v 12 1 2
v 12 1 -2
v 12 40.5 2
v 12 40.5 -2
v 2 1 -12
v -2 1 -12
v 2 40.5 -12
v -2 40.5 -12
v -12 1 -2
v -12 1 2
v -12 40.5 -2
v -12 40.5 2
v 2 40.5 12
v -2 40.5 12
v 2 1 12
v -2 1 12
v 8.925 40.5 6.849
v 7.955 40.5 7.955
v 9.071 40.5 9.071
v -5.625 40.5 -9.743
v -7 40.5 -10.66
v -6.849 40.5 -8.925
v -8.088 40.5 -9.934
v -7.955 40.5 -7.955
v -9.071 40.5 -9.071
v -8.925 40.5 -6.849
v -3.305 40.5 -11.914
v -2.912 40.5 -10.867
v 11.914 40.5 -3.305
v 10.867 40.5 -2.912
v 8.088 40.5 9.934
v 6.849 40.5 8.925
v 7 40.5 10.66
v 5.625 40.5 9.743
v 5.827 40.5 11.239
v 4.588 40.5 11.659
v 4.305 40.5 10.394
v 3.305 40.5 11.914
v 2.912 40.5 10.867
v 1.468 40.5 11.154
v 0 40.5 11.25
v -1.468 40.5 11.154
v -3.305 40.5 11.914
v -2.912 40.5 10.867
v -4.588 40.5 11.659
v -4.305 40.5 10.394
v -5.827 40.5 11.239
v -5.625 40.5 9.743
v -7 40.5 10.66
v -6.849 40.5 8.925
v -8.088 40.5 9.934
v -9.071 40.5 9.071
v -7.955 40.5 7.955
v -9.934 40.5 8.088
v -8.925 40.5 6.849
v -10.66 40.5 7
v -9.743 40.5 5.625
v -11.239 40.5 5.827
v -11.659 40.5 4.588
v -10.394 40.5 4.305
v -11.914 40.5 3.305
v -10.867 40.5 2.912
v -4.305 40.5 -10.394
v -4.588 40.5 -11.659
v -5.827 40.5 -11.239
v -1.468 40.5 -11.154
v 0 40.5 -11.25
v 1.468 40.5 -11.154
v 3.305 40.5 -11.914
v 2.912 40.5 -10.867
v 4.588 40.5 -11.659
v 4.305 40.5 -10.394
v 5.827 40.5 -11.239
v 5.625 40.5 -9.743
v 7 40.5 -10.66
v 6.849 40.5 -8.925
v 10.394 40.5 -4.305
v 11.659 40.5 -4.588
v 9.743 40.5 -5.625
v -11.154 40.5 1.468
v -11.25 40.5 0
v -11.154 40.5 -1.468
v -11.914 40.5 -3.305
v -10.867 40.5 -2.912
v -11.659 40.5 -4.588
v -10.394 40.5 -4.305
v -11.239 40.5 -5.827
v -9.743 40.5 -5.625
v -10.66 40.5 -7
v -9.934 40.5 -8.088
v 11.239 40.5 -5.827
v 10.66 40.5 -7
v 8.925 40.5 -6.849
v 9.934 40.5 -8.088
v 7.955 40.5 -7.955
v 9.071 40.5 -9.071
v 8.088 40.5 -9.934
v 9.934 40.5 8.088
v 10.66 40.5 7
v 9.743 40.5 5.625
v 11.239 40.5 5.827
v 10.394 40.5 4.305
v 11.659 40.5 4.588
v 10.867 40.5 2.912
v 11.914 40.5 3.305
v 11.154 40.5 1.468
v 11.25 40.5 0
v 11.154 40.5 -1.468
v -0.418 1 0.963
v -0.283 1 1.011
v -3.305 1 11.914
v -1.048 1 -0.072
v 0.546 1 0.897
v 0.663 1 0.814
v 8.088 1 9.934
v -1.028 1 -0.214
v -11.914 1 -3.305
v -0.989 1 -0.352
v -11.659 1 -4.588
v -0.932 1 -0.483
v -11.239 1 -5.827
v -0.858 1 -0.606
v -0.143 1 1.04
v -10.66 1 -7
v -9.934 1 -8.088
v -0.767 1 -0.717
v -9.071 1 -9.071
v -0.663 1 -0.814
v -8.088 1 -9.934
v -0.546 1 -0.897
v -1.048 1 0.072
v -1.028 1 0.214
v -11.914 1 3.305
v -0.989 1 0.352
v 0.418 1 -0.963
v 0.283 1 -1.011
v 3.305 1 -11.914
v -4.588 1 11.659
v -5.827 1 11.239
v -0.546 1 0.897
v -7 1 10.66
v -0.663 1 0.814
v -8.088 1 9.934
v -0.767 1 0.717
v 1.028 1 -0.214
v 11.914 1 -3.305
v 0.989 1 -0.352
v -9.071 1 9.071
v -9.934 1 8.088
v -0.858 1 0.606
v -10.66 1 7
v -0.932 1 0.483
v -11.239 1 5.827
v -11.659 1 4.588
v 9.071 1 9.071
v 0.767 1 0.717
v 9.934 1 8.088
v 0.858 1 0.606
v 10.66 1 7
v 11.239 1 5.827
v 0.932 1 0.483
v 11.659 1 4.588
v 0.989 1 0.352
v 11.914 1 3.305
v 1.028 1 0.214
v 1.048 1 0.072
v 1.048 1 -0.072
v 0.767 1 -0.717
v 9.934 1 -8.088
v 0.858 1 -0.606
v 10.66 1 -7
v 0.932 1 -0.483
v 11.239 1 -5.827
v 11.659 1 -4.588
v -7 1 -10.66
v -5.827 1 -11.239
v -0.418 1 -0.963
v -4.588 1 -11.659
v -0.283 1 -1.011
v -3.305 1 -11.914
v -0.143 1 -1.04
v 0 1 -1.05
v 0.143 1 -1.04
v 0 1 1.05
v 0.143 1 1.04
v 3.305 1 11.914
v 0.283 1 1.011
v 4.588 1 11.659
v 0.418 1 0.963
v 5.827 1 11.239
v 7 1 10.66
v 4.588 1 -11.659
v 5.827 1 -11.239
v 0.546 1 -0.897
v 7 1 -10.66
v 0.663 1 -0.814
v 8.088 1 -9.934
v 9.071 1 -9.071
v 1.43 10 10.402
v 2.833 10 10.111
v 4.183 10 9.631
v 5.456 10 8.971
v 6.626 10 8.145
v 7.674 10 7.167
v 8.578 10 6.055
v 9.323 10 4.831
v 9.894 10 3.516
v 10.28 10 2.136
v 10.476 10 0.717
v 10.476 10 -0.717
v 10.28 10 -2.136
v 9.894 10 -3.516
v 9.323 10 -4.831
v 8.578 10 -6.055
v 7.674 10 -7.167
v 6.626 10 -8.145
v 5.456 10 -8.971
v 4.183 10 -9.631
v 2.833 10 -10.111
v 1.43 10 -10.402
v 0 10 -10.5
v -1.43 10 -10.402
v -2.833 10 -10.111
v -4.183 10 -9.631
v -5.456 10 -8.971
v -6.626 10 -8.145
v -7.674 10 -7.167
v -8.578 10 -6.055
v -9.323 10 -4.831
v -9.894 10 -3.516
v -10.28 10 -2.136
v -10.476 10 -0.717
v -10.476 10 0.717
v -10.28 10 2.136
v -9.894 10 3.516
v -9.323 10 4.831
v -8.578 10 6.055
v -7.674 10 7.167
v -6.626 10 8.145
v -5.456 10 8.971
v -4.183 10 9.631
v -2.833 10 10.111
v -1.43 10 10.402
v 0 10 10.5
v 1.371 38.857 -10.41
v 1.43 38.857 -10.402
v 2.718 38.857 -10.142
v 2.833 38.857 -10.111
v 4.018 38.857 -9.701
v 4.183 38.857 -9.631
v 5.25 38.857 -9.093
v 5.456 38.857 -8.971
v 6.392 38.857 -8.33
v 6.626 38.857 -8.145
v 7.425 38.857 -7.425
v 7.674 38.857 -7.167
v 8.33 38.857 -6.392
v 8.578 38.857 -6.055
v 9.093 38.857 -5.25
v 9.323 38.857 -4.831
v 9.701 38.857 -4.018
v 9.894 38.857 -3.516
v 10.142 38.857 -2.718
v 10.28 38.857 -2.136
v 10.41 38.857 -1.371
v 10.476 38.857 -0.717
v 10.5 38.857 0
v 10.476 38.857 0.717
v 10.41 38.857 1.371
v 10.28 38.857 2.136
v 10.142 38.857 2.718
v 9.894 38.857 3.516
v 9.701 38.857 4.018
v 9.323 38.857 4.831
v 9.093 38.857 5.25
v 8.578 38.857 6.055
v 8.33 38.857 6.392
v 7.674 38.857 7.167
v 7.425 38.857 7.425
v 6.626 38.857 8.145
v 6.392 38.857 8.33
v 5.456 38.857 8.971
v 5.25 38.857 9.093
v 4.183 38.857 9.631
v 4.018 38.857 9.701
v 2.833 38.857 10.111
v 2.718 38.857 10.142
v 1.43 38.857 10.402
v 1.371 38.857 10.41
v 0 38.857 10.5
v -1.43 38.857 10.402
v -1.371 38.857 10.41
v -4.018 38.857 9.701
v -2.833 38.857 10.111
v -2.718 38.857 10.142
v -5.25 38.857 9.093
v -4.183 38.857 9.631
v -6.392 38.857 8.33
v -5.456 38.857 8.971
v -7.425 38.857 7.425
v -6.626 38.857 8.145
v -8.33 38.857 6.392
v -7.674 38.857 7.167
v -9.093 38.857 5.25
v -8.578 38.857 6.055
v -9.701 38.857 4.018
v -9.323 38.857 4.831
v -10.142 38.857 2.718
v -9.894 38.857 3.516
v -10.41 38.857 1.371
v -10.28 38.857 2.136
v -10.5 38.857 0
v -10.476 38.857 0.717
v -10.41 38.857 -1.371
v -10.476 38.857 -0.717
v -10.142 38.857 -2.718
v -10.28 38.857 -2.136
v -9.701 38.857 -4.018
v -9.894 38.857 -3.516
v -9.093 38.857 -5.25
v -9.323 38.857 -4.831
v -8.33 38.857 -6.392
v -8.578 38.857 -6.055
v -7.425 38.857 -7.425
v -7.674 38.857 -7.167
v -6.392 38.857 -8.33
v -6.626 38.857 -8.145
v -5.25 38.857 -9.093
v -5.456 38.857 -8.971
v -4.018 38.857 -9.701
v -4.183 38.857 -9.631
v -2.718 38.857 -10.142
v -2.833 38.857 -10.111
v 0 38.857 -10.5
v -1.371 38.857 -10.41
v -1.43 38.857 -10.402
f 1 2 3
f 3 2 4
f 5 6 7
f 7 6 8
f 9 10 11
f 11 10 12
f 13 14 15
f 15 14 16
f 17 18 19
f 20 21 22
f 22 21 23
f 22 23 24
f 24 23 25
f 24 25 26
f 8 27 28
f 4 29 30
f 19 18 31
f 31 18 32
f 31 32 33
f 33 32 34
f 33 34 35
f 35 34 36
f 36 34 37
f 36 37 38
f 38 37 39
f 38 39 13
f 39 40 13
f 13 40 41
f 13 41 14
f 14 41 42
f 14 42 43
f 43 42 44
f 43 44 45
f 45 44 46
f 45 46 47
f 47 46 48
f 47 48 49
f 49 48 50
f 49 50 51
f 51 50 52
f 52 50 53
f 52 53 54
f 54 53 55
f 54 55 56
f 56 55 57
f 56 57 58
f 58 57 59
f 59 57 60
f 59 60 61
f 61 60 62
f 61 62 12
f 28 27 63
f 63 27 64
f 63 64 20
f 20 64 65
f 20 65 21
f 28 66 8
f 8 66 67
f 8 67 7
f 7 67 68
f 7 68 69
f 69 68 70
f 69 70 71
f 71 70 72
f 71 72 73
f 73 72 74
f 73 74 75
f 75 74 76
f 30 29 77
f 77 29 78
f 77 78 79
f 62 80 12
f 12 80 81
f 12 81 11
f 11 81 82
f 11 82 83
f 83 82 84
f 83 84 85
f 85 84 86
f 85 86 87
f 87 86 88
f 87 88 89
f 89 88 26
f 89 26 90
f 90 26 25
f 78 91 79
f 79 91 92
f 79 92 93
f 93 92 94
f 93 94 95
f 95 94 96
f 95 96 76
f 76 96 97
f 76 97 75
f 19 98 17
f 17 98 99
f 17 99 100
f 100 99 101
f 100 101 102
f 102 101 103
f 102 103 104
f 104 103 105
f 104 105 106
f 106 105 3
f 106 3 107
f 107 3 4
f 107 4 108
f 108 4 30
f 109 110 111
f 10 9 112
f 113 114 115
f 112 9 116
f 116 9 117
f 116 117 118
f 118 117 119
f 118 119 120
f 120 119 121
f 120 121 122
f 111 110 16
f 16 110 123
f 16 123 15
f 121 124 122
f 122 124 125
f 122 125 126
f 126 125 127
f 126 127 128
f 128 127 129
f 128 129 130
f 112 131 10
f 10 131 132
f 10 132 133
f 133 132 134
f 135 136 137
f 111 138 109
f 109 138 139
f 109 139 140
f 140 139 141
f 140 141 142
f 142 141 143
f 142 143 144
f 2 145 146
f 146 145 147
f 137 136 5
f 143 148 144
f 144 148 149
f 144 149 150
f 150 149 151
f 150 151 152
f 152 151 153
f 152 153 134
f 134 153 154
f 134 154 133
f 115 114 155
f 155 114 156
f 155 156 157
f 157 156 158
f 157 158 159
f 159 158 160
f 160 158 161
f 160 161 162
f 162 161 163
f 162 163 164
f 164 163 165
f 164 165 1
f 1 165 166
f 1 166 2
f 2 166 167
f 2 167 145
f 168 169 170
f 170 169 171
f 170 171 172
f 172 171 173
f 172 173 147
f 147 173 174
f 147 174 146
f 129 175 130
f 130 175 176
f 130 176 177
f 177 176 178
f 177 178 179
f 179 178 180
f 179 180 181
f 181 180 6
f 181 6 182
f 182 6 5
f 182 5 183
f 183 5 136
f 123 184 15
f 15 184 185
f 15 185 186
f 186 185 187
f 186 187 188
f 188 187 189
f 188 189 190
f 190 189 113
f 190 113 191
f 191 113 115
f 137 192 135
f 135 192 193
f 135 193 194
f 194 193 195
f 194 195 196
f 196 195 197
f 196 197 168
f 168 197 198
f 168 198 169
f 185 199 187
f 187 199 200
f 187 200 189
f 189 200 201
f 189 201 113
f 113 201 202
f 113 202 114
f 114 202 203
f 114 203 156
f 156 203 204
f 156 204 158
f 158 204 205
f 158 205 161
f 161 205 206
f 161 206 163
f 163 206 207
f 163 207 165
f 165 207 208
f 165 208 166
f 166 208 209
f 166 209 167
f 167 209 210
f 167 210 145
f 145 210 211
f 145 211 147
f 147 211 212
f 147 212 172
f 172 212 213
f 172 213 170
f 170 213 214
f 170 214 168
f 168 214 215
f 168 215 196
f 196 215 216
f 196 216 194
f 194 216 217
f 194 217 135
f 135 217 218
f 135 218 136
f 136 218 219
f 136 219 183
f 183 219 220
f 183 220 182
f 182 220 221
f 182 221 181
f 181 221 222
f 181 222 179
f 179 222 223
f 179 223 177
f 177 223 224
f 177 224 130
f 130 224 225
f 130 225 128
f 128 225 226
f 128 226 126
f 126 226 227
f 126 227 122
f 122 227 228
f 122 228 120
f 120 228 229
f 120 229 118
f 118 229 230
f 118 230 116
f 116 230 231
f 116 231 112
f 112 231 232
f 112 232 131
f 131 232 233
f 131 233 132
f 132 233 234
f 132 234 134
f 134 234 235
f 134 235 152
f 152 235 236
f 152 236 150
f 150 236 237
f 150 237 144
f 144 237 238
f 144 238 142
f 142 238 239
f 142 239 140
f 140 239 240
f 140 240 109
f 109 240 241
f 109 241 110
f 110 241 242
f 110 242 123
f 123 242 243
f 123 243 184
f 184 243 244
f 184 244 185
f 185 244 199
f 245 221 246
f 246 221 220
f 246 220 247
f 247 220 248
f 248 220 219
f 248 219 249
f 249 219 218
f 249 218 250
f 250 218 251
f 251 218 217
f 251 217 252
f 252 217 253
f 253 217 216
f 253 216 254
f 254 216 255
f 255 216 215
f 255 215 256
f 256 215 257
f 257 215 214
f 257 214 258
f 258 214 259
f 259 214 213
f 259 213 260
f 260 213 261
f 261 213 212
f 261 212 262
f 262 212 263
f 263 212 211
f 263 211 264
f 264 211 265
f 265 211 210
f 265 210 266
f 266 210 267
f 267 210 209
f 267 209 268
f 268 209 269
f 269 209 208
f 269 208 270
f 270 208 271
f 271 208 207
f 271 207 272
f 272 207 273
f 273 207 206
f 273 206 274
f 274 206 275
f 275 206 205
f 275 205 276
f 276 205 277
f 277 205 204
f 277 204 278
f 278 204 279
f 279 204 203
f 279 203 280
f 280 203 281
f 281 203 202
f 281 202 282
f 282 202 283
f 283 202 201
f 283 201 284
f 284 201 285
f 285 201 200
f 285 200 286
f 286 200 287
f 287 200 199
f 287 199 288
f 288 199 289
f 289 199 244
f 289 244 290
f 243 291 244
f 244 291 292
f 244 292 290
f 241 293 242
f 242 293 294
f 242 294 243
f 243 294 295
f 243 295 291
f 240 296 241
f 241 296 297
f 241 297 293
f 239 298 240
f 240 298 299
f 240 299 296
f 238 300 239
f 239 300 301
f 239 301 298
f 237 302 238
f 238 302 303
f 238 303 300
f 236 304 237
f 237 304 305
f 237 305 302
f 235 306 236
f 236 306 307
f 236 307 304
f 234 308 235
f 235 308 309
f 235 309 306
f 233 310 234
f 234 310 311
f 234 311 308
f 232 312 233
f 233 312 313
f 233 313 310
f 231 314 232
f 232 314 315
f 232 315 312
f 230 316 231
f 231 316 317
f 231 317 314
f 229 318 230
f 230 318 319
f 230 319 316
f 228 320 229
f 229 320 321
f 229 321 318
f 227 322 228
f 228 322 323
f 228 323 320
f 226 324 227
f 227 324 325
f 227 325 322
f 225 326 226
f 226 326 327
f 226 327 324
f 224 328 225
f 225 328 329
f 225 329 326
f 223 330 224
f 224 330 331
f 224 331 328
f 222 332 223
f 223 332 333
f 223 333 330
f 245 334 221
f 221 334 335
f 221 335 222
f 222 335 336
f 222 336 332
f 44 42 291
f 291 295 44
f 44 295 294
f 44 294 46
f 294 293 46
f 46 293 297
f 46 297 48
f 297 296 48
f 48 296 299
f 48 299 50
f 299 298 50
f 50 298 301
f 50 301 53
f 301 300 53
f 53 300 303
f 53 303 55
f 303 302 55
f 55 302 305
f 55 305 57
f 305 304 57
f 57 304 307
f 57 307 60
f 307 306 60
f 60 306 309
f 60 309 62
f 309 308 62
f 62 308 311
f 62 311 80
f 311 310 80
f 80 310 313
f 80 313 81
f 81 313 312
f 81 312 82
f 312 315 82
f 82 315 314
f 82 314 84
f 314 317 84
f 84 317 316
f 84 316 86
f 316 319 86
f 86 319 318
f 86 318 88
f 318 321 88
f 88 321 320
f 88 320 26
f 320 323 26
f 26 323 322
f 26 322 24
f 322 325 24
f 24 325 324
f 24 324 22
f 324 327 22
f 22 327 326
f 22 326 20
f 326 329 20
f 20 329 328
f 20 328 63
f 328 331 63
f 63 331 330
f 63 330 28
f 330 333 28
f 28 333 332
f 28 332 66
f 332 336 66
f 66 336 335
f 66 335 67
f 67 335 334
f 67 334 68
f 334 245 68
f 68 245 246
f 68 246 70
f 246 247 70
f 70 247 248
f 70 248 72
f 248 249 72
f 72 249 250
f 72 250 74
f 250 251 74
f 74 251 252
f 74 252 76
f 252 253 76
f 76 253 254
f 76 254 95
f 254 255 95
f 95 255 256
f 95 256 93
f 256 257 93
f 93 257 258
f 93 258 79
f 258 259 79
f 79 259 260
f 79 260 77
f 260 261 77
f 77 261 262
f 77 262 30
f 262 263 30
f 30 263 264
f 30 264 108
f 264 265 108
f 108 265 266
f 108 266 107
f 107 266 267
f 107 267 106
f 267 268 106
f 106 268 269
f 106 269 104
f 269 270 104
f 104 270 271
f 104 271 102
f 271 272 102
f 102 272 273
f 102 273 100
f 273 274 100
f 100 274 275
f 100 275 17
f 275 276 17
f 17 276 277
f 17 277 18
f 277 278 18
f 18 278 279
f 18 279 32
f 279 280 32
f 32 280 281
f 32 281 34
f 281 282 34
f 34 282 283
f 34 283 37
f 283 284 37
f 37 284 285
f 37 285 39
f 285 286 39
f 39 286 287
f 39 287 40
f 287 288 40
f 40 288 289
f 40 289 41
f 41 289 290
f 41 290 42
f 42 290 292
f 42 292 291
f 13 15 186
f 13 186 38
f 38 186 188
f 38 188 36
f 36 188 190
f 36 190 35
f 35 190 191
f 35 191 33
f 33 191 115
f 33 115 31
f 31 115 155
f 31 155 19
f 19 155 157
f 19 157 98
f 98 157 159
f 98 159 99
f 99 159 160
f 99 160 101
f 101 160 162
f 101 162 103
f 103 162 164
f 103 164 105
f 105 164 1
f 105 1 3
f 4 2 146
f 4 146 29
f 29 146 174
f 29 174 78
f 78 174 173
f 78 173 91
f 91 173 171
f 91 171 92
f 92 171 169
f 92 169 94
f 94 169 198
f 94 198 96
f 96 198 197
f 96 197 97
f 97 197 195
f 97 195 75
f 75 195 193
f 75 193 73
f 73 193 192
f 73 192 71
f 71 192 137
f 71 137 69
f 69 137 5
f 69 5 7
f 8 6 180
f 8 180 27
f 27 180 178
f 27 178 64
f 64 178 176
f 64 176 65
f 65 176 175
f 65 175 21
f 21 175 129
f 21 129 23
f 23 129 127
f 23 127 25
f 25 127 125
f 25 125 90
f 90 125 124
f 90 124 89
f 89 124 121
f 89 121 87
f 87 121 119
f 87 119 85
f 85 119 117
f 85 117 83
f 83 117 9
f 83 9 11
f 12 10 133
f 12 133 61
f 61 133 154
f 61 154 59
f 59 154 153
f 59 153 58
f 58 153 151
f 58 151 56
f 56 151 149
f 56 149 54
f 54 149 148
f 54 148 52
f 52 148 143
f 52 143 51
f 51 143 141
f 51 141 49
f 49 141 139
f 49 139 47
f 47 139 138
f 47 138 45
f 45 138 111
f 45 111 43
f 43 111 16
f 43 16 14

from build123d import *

# Parameters (mm, degrees)
BOSS_EXTRUDE2_START = 1
SKETCH3_W           = 24
SKETCH3_H           = 24
BOSS_EXTRUDE2_DEPTH = 39.5
FILLET1_R           = 10


with BuildPart() as part:
    # Sketch1 → Revolve1 (revolve)
    with BuildSketch(Plane(origin=(0, 0, 0), x_dir=(0, 0, -1), z_dir=(1, 0, 0))):
        Polygon((0, 0), (10.5, 10), (10.5, 38.857142857), (11.25, 40.5), (11.25, 44.5), (0, 44.5), align=None)
    revolve(axis=Axis((0, 0, 0), (0, 1, 0)))


with BuildPart() as body_2:
    # Sketch3 → Boss-Extrude2 (new body)
    with BuildSketch(Plane(origin=(0, 0, 0), x_dir=(1, 0, 0), z_dir=(0, 1, 0)).offset(BOSS_EXTRUDE2_START)):
        Rectangle(SKETCH3_W, SKETCH3_H)
    extrude(amount=BOSS_EXTRUDE2_DEPTH)

    # Combine1: cut part
    add(part.part, mode=Mode.SUBTRACT)

    # Fillet1
    fillet1_edges = [body_2.edges().sort_by_distance(p)[0] for p in [
        (12, 20.75, 12),
        (-12, 20.75, 12),
        (-12, 20.75, -12),
        (12, 20.75, -12),
    ]]
    fillet(fillet1_edges, radius=FILLET1_R)


solid = body_2.part
